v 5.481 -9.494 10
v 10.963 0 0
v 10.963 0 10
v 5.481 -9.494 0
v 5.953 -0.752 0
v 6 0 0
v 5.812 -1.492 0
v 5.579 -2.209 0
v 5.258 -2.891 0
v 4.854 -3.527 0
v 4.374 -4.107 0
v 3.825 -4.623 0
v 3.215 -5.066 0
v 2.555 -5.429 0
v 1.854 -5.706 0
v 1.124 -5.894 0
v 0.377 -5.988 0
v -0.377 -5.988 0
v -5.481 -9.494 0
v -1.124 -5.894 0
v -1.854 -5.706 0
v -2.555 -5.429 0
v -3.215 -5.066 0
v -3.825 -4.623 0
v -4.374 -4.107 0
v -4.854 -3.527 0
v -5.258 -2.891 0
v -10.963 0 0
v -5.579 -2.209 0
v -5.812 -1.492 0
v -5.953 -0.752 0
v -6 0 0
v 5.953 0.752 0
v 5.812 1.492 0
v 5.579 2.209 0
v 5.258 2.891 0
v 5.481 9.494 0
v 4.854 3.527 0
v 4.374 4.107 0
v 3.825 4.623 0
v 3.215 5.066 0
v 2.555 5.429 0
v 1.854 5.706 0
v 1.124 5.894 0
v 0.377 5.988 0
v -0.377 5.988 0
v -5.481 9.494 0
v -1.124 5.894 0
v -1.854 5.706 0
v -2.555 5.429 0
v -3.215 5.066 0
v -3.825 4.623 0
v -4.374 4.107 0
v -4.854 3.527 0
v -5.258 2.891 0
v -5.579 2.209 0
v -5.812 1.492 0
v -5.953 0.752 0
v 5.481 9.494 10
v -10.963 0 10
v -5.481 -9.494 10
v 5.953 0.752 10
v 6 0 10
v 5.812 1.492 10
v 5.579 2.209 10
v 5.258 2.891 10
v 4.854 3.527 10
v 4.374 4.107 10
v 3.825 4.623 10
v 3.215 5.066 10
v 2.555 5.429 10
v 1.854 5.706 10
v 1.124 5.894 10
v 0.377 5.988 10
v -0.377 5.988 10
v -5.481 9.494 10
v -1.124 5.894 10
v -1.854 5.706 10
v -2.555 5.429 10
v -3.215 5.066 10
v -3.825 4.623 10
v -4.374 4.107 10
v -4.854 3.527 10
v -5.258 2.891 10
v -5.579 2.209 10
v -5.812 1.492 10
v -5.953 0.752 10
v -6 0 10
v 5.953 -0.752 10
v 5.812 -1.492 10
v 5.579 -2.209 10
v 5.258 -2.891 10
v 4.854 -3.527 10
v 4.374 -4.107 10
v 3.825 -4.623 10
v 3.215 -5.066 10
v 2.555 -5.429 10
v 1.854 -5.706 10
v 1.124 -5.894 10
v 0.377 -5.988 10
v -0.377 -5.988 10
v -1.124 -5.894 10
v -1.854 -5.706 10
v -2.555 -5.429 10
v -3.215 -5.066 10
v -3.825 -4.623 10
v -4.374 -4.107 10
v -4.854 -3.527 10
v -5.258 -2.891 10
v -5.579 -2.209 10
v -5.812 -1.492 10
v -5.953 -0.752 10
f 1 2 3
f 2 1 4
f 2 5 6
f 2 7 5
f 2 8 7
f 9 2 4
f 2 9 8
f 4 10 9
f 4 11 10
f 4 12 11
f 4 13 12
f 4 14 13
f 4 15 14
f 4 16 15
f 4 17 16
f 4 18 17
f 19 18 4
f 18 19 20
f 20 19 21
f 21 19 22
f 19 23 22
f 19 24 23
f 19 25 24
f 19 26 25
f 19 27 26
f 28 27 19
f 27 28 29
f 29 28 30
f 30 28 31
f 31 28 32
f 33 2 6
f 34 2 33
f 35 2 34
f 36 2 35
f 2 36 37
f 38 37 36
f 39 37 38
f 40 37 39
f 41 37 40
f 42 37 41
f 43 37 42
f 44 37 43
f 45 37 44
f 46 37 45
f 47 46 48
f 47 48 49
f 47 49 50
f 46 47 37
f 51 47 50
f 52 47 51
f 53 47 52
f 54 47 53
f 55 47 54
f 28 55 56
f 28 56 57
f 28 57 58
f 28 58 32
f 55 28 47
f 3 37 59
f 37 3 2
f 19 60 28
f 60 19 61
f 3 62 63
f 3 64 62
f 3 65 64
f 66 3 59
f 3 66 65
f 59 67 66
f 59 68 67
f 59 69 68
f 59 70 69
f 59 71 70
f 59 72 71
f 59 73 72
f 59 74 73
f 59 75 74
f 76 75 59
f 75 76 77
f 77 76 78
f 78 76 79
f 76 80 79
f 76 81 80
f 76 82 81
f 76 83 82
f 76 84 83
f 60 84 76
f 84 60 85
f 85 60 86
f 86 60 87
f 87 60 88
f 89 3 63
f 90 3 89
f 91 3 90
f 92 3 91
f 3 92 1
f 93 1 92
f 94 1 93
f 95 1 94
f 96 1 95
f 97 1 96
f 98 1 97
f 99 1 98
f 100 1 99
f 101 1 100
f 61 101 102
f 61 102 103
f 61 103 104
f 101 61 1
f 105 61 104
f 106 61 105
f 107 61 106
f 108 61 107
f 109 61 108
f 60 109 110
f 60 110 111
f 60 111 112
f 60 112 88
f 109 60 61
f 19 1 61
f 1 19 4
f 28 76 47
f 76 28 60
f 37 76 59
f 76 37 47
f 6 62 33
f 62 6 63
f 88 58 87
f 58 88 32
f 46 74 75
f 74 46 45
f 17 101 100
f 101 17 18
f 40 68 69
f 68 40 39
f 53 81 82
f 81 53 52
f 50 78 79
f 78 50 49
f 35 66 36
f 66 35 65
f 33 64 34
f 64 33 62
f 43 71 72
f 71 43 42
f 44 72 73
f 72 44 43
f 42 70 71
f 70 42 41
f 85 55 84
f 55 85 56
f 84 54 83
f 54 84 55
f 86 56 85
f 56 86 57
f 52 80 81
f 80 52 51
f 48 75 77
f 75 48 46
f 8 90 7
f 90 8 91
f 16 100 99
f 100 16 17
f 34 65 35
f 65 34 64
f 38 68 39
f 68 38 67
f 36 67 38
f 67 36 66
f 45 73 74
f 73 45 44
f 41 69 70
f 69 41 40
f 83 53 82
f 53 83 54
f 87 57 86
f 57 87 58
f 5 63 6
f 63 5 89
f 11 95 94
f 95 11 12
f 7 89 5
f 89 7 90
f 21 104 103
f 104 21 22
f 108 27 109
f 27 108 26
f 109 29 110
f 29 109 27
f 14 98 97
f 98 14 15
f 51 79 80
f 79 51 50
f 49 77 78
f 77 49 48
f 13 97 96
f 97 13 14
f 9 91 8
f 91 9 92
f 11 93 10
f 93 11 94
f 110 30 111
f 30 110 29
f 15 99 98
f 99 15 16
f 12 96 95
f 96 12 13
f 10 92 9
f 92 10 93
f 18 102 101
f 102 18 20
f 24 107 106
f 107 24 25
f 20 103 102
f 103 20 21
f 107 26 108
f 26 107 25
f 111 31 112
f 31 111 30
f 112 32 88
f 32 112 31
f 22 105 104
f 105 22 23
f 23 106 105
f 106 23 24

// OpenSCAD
$fn = 50;


difference() {
	union() {
		translate(v = [0, 0, 0]) {
			rotate(a = [0, 0, 0]) {
				#translate(v = [0, 0, 0]) {
					rotate(a = [0, 0, 0]) {
						linear_extrude(height = 10) {
							polygon(points = [[10.9630000000, 0.0000000000], [5.4815000000, 9.4942365017], [-5.4815000000, 9.4942365017], [-10.9630000000, 0.0000000000], [-5.4815000000, -9.4942365017], [5.4815000000, -9.4942365017]]);
						}
					}
				}
			}
		}
	}
	union() {
		translate(v = [0, 0, -10]) {
			rotate(a = [0, 0, 0]) {
				cylinder(h = 100, r = 6.0000000000);
			}
		}
	}
}
